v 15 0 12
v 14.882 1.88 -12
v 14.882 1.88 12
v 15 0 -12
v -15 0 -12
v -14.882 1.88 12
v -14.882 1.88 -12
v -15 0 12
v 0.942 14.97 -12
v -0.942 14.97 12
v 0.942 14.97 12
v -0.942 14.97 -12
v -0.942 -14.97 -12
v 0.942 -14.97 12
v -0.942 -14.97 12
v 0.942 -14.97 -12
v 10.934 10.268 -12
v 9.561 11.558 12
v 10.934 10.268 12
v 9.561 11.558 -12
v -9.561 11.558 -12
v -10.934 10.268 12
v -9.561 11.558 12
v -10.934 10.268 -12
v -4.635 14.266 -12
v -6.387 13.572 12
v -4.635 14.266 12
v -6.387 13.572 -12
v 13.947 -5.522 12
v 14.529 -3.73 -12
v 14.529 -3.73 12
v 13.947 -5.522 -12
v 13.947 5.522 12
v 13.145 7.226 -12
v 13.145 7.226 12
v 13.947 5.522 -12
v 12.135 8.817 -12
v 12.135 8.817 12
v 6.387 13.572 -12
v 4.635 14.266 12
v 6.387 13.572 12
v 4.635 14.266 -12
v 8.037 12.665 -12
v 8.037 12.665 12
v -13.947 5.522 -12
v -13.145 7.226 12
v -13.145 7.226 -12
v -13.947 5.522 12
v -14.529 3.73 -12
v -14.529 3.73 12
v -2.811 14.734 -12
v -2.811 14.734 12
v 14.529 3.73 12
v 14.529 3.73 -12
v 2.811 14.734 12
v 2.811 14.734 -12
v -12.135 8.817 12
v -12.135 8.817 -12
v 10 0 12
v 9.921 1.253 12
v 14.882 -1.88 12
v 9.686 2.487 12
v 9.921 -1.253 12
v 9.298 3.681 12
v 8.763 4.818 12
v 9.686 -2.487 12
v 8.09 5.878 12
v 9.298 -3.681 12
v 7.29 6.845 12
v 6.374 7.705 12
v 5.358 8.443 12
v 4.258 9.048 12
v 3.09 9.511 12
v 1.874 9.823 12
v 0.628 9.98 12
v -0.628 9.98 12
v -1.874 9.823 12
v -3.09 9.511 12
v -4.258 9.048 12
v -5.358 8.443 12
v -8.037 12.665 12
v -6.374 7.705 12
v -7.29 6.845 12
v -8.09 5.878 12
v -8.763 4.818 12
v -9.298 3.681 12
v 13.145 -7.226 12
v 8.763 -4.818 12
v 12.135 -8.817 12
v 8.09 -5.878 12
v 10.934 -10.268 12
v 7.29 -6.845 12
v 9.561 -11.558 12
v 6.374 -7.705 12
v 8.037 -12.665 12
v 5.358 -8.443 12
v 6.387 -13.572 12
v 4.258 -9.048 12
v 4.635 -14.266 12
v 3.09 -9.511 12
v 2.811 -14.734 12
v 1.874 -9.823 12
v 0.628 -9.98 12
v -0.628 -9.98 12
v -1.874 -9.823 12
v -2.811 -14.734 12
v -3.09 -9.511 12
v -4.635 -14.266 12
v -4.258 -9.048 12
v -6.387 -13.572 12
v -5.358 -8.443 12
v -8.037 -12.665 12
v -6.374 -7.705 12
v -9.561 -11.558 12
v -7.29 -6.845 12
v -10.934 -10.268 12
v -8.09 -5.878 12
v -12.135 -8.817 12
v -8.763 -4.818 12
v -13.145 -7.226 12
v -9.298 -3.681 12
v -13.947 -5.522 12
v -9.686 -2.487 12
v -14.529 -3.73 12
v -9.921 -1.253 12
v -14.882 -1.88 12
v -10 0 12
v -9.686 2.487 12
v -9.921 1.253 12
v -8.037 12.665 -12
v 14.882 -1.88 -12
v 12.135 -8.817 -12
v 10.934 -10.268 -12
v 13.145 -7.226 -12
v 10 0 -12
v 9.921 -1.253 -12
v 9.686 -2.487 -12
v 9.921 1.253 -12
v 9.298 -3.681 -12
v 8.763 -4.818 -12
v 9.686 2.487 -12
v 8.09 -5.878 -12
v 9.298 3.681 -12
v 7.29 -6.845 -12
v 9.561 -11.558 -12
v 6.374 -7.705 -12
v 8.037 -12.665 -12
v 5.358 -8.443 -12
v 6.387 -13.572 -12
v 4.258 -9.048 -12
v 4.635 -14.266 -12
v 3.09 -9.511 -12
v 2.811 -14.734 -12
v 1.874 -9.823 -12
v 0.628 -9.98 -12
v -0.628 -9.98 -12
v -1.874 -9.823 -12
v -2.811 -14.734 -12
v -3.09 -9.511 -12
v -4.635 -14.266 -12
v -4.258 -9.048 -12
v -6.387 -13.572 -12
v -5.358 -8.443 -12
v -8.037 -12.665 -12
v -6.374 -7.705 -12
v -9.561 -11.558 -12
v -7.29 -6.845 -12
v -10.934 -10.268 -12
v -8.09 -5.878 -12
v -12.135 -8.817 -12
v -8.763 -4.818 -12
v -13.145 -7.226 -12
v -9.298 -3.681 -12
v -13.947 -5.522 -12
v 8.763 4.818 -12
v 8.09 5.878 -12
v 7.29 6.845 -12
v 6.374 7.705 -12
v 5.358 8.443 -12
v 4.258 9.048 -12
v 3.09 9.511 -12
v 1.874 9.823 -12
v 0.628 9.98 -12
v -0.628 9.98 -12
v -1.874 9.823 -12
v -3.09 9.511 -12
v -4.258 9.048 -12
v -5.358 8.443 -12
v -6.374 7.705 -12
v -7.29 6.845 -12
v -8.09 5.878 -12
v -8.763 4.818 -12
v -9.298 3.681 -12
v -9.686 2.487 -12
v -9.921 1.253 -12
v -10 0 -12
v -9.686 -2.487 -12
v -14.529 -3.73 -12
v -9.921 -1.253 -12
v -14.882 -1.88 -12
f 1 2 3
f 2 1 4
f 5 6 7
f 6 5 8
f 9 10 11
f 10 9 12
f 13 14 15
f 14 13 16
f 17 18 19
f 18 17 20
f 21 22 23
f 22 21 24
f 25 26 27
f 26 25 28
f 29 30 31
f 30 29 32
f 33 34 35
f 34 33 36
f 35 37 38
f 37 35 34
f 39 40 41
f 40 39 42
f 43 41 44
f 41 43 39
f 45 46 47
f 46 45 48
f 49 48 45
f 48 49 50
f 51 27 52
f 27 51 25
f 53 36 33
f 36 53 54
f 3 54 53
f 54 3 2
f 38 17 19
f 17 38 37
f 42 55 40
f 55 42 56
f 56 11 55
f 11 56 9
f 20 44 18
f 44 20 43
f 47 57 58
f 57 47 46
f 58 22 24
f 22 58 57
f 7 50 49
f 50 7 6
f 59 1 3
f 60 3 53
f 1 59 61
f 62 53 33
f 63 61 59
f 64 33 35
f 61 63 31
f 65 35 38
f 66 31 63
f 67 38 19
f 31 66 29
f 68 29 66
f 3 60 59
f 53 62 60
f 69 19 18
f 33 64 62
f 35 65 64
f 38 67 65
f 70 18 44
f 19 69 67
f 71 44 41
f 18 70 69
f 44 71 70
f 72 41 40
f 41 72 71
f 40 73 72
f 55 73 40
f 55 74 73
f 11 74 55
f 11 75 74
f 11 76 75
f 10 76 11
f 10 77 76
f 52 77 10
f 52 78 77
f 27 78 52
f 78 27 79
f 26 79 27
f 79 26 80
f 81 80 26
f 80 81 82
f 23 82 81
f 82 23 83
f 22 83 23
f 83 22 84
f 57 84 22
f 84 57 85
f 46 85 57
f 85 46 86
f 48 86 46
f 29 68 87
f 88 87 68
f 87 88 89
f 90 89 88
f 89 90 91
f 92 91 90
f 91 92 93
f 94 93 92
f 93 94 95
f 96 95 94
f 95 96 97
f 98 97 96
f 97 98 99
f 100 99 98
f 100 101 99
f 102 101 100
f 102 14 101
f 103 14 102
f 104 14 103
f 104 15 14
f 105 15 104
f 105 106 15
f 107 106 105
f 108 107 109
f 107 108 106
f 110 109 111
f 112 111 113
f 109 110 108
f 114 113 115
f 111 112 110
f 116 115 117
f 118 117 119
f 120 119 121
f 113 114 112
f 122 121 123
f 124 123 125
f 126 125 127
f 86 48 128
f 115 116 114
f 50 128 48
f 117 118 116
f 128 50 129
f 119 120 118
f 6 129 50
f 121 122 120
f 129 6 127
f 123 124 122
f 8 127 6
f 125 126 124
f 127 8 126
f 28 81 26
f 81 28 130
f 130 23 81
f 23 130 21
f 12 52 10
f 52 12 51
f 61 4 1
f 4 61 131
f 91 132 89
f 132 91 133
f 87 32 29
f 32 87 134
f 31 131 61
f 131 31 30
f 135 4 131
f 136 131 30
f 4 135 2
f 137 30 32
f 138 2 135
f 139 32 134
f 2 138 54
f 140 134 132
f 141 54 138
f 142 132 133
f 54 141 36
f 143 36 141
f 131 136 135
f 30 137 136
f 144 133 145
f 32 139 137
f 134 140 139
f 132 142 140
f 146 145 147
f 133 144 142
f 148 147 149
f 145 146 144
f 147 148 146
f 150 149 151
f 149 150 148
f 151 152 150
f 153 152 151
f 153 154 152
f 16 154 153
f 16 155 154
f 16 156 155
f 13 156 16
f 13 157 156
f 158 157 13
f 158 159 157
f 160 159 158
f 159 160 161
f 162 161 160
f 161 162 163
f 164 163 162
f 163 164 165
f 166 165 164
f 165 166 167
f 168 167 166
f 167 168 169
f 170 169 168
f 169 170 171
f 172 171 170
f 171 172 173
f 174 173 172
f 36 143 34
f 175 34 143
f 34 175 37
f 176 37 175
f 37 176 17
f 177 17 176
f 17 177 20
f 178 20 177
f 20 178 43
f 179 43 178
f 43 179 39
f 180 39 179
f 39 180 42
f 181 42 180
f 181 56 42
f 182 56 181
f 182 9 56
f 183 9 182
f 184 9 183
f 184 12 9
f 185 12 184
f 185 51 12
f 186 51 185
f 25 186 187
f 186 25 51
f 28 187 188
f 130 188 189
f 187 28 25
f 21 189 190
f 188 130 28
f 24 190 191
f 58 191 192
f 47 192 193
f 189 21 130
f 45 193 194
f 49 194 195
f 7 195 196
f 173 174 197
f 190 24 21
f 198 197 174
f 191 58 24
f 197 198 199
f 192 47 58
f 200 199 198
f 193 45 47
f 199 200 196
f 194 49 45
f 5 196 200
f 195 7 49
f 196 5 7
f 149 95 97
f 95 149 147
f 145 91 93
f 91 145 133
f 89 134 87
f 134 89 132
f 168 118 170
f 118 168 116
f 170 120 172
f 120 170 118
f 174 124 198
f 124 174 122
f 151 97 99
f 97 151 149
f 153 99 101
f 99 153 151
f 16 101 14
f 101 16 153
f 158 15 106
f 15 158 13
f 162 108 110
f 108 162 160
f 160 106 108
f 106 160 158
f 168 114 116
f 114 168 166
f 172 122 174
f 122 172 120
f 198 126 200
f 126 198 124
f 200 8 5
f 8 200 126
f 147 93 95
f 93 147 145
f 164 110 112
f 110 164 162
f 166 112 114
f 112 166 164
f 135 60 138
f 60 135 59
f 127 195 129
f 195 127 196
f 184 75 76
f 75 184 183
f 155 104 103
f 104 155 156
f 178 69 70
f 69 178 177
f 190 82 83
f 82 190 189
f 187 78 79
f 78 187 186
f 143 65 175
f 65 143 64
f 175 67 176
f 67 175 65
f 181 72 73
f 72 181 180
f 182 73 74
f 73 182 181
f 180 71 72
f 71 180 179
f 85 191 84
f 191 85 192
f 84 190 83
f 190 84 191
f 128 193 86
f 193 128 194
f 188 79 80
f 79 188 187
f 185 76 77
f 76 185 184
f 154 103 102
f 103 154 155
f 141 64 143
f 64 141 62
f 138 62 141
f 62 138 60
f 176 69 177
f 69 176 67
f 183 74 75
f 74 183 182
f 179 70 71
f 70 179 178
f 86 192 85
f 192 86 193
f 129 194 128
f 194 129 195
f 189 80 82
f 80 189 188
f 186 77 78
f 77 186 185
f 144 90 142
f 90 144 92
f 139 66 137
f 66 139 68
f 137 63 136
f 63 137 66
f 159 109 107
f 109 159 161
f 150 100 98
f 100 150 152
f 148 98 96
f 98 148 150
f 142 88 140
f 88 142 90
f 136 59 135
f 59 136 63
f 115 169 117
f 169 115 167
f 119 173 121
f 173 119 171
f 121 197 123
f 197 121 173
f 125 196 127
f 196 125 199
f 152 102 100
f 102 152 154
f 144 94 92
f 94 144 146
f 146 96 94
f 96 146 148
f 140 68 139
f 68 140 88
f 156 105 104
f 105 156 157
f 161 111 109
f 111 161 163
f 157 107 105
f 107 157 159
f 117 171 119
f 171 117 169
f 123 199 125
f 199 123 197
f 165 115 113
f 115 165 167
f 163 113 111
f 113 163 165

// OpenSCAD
$fn = 50;


difference() {
	union() {
		translate(v = [0, 0, -12.0000000000]) {
			cylinder(h = 24, r = 15.0000000000);
		}
	}
	union() {
		translate(v = [0, 0, -100.0000000000]) {
			cylinder(h = 200, r = 10);
		}
	}
}
